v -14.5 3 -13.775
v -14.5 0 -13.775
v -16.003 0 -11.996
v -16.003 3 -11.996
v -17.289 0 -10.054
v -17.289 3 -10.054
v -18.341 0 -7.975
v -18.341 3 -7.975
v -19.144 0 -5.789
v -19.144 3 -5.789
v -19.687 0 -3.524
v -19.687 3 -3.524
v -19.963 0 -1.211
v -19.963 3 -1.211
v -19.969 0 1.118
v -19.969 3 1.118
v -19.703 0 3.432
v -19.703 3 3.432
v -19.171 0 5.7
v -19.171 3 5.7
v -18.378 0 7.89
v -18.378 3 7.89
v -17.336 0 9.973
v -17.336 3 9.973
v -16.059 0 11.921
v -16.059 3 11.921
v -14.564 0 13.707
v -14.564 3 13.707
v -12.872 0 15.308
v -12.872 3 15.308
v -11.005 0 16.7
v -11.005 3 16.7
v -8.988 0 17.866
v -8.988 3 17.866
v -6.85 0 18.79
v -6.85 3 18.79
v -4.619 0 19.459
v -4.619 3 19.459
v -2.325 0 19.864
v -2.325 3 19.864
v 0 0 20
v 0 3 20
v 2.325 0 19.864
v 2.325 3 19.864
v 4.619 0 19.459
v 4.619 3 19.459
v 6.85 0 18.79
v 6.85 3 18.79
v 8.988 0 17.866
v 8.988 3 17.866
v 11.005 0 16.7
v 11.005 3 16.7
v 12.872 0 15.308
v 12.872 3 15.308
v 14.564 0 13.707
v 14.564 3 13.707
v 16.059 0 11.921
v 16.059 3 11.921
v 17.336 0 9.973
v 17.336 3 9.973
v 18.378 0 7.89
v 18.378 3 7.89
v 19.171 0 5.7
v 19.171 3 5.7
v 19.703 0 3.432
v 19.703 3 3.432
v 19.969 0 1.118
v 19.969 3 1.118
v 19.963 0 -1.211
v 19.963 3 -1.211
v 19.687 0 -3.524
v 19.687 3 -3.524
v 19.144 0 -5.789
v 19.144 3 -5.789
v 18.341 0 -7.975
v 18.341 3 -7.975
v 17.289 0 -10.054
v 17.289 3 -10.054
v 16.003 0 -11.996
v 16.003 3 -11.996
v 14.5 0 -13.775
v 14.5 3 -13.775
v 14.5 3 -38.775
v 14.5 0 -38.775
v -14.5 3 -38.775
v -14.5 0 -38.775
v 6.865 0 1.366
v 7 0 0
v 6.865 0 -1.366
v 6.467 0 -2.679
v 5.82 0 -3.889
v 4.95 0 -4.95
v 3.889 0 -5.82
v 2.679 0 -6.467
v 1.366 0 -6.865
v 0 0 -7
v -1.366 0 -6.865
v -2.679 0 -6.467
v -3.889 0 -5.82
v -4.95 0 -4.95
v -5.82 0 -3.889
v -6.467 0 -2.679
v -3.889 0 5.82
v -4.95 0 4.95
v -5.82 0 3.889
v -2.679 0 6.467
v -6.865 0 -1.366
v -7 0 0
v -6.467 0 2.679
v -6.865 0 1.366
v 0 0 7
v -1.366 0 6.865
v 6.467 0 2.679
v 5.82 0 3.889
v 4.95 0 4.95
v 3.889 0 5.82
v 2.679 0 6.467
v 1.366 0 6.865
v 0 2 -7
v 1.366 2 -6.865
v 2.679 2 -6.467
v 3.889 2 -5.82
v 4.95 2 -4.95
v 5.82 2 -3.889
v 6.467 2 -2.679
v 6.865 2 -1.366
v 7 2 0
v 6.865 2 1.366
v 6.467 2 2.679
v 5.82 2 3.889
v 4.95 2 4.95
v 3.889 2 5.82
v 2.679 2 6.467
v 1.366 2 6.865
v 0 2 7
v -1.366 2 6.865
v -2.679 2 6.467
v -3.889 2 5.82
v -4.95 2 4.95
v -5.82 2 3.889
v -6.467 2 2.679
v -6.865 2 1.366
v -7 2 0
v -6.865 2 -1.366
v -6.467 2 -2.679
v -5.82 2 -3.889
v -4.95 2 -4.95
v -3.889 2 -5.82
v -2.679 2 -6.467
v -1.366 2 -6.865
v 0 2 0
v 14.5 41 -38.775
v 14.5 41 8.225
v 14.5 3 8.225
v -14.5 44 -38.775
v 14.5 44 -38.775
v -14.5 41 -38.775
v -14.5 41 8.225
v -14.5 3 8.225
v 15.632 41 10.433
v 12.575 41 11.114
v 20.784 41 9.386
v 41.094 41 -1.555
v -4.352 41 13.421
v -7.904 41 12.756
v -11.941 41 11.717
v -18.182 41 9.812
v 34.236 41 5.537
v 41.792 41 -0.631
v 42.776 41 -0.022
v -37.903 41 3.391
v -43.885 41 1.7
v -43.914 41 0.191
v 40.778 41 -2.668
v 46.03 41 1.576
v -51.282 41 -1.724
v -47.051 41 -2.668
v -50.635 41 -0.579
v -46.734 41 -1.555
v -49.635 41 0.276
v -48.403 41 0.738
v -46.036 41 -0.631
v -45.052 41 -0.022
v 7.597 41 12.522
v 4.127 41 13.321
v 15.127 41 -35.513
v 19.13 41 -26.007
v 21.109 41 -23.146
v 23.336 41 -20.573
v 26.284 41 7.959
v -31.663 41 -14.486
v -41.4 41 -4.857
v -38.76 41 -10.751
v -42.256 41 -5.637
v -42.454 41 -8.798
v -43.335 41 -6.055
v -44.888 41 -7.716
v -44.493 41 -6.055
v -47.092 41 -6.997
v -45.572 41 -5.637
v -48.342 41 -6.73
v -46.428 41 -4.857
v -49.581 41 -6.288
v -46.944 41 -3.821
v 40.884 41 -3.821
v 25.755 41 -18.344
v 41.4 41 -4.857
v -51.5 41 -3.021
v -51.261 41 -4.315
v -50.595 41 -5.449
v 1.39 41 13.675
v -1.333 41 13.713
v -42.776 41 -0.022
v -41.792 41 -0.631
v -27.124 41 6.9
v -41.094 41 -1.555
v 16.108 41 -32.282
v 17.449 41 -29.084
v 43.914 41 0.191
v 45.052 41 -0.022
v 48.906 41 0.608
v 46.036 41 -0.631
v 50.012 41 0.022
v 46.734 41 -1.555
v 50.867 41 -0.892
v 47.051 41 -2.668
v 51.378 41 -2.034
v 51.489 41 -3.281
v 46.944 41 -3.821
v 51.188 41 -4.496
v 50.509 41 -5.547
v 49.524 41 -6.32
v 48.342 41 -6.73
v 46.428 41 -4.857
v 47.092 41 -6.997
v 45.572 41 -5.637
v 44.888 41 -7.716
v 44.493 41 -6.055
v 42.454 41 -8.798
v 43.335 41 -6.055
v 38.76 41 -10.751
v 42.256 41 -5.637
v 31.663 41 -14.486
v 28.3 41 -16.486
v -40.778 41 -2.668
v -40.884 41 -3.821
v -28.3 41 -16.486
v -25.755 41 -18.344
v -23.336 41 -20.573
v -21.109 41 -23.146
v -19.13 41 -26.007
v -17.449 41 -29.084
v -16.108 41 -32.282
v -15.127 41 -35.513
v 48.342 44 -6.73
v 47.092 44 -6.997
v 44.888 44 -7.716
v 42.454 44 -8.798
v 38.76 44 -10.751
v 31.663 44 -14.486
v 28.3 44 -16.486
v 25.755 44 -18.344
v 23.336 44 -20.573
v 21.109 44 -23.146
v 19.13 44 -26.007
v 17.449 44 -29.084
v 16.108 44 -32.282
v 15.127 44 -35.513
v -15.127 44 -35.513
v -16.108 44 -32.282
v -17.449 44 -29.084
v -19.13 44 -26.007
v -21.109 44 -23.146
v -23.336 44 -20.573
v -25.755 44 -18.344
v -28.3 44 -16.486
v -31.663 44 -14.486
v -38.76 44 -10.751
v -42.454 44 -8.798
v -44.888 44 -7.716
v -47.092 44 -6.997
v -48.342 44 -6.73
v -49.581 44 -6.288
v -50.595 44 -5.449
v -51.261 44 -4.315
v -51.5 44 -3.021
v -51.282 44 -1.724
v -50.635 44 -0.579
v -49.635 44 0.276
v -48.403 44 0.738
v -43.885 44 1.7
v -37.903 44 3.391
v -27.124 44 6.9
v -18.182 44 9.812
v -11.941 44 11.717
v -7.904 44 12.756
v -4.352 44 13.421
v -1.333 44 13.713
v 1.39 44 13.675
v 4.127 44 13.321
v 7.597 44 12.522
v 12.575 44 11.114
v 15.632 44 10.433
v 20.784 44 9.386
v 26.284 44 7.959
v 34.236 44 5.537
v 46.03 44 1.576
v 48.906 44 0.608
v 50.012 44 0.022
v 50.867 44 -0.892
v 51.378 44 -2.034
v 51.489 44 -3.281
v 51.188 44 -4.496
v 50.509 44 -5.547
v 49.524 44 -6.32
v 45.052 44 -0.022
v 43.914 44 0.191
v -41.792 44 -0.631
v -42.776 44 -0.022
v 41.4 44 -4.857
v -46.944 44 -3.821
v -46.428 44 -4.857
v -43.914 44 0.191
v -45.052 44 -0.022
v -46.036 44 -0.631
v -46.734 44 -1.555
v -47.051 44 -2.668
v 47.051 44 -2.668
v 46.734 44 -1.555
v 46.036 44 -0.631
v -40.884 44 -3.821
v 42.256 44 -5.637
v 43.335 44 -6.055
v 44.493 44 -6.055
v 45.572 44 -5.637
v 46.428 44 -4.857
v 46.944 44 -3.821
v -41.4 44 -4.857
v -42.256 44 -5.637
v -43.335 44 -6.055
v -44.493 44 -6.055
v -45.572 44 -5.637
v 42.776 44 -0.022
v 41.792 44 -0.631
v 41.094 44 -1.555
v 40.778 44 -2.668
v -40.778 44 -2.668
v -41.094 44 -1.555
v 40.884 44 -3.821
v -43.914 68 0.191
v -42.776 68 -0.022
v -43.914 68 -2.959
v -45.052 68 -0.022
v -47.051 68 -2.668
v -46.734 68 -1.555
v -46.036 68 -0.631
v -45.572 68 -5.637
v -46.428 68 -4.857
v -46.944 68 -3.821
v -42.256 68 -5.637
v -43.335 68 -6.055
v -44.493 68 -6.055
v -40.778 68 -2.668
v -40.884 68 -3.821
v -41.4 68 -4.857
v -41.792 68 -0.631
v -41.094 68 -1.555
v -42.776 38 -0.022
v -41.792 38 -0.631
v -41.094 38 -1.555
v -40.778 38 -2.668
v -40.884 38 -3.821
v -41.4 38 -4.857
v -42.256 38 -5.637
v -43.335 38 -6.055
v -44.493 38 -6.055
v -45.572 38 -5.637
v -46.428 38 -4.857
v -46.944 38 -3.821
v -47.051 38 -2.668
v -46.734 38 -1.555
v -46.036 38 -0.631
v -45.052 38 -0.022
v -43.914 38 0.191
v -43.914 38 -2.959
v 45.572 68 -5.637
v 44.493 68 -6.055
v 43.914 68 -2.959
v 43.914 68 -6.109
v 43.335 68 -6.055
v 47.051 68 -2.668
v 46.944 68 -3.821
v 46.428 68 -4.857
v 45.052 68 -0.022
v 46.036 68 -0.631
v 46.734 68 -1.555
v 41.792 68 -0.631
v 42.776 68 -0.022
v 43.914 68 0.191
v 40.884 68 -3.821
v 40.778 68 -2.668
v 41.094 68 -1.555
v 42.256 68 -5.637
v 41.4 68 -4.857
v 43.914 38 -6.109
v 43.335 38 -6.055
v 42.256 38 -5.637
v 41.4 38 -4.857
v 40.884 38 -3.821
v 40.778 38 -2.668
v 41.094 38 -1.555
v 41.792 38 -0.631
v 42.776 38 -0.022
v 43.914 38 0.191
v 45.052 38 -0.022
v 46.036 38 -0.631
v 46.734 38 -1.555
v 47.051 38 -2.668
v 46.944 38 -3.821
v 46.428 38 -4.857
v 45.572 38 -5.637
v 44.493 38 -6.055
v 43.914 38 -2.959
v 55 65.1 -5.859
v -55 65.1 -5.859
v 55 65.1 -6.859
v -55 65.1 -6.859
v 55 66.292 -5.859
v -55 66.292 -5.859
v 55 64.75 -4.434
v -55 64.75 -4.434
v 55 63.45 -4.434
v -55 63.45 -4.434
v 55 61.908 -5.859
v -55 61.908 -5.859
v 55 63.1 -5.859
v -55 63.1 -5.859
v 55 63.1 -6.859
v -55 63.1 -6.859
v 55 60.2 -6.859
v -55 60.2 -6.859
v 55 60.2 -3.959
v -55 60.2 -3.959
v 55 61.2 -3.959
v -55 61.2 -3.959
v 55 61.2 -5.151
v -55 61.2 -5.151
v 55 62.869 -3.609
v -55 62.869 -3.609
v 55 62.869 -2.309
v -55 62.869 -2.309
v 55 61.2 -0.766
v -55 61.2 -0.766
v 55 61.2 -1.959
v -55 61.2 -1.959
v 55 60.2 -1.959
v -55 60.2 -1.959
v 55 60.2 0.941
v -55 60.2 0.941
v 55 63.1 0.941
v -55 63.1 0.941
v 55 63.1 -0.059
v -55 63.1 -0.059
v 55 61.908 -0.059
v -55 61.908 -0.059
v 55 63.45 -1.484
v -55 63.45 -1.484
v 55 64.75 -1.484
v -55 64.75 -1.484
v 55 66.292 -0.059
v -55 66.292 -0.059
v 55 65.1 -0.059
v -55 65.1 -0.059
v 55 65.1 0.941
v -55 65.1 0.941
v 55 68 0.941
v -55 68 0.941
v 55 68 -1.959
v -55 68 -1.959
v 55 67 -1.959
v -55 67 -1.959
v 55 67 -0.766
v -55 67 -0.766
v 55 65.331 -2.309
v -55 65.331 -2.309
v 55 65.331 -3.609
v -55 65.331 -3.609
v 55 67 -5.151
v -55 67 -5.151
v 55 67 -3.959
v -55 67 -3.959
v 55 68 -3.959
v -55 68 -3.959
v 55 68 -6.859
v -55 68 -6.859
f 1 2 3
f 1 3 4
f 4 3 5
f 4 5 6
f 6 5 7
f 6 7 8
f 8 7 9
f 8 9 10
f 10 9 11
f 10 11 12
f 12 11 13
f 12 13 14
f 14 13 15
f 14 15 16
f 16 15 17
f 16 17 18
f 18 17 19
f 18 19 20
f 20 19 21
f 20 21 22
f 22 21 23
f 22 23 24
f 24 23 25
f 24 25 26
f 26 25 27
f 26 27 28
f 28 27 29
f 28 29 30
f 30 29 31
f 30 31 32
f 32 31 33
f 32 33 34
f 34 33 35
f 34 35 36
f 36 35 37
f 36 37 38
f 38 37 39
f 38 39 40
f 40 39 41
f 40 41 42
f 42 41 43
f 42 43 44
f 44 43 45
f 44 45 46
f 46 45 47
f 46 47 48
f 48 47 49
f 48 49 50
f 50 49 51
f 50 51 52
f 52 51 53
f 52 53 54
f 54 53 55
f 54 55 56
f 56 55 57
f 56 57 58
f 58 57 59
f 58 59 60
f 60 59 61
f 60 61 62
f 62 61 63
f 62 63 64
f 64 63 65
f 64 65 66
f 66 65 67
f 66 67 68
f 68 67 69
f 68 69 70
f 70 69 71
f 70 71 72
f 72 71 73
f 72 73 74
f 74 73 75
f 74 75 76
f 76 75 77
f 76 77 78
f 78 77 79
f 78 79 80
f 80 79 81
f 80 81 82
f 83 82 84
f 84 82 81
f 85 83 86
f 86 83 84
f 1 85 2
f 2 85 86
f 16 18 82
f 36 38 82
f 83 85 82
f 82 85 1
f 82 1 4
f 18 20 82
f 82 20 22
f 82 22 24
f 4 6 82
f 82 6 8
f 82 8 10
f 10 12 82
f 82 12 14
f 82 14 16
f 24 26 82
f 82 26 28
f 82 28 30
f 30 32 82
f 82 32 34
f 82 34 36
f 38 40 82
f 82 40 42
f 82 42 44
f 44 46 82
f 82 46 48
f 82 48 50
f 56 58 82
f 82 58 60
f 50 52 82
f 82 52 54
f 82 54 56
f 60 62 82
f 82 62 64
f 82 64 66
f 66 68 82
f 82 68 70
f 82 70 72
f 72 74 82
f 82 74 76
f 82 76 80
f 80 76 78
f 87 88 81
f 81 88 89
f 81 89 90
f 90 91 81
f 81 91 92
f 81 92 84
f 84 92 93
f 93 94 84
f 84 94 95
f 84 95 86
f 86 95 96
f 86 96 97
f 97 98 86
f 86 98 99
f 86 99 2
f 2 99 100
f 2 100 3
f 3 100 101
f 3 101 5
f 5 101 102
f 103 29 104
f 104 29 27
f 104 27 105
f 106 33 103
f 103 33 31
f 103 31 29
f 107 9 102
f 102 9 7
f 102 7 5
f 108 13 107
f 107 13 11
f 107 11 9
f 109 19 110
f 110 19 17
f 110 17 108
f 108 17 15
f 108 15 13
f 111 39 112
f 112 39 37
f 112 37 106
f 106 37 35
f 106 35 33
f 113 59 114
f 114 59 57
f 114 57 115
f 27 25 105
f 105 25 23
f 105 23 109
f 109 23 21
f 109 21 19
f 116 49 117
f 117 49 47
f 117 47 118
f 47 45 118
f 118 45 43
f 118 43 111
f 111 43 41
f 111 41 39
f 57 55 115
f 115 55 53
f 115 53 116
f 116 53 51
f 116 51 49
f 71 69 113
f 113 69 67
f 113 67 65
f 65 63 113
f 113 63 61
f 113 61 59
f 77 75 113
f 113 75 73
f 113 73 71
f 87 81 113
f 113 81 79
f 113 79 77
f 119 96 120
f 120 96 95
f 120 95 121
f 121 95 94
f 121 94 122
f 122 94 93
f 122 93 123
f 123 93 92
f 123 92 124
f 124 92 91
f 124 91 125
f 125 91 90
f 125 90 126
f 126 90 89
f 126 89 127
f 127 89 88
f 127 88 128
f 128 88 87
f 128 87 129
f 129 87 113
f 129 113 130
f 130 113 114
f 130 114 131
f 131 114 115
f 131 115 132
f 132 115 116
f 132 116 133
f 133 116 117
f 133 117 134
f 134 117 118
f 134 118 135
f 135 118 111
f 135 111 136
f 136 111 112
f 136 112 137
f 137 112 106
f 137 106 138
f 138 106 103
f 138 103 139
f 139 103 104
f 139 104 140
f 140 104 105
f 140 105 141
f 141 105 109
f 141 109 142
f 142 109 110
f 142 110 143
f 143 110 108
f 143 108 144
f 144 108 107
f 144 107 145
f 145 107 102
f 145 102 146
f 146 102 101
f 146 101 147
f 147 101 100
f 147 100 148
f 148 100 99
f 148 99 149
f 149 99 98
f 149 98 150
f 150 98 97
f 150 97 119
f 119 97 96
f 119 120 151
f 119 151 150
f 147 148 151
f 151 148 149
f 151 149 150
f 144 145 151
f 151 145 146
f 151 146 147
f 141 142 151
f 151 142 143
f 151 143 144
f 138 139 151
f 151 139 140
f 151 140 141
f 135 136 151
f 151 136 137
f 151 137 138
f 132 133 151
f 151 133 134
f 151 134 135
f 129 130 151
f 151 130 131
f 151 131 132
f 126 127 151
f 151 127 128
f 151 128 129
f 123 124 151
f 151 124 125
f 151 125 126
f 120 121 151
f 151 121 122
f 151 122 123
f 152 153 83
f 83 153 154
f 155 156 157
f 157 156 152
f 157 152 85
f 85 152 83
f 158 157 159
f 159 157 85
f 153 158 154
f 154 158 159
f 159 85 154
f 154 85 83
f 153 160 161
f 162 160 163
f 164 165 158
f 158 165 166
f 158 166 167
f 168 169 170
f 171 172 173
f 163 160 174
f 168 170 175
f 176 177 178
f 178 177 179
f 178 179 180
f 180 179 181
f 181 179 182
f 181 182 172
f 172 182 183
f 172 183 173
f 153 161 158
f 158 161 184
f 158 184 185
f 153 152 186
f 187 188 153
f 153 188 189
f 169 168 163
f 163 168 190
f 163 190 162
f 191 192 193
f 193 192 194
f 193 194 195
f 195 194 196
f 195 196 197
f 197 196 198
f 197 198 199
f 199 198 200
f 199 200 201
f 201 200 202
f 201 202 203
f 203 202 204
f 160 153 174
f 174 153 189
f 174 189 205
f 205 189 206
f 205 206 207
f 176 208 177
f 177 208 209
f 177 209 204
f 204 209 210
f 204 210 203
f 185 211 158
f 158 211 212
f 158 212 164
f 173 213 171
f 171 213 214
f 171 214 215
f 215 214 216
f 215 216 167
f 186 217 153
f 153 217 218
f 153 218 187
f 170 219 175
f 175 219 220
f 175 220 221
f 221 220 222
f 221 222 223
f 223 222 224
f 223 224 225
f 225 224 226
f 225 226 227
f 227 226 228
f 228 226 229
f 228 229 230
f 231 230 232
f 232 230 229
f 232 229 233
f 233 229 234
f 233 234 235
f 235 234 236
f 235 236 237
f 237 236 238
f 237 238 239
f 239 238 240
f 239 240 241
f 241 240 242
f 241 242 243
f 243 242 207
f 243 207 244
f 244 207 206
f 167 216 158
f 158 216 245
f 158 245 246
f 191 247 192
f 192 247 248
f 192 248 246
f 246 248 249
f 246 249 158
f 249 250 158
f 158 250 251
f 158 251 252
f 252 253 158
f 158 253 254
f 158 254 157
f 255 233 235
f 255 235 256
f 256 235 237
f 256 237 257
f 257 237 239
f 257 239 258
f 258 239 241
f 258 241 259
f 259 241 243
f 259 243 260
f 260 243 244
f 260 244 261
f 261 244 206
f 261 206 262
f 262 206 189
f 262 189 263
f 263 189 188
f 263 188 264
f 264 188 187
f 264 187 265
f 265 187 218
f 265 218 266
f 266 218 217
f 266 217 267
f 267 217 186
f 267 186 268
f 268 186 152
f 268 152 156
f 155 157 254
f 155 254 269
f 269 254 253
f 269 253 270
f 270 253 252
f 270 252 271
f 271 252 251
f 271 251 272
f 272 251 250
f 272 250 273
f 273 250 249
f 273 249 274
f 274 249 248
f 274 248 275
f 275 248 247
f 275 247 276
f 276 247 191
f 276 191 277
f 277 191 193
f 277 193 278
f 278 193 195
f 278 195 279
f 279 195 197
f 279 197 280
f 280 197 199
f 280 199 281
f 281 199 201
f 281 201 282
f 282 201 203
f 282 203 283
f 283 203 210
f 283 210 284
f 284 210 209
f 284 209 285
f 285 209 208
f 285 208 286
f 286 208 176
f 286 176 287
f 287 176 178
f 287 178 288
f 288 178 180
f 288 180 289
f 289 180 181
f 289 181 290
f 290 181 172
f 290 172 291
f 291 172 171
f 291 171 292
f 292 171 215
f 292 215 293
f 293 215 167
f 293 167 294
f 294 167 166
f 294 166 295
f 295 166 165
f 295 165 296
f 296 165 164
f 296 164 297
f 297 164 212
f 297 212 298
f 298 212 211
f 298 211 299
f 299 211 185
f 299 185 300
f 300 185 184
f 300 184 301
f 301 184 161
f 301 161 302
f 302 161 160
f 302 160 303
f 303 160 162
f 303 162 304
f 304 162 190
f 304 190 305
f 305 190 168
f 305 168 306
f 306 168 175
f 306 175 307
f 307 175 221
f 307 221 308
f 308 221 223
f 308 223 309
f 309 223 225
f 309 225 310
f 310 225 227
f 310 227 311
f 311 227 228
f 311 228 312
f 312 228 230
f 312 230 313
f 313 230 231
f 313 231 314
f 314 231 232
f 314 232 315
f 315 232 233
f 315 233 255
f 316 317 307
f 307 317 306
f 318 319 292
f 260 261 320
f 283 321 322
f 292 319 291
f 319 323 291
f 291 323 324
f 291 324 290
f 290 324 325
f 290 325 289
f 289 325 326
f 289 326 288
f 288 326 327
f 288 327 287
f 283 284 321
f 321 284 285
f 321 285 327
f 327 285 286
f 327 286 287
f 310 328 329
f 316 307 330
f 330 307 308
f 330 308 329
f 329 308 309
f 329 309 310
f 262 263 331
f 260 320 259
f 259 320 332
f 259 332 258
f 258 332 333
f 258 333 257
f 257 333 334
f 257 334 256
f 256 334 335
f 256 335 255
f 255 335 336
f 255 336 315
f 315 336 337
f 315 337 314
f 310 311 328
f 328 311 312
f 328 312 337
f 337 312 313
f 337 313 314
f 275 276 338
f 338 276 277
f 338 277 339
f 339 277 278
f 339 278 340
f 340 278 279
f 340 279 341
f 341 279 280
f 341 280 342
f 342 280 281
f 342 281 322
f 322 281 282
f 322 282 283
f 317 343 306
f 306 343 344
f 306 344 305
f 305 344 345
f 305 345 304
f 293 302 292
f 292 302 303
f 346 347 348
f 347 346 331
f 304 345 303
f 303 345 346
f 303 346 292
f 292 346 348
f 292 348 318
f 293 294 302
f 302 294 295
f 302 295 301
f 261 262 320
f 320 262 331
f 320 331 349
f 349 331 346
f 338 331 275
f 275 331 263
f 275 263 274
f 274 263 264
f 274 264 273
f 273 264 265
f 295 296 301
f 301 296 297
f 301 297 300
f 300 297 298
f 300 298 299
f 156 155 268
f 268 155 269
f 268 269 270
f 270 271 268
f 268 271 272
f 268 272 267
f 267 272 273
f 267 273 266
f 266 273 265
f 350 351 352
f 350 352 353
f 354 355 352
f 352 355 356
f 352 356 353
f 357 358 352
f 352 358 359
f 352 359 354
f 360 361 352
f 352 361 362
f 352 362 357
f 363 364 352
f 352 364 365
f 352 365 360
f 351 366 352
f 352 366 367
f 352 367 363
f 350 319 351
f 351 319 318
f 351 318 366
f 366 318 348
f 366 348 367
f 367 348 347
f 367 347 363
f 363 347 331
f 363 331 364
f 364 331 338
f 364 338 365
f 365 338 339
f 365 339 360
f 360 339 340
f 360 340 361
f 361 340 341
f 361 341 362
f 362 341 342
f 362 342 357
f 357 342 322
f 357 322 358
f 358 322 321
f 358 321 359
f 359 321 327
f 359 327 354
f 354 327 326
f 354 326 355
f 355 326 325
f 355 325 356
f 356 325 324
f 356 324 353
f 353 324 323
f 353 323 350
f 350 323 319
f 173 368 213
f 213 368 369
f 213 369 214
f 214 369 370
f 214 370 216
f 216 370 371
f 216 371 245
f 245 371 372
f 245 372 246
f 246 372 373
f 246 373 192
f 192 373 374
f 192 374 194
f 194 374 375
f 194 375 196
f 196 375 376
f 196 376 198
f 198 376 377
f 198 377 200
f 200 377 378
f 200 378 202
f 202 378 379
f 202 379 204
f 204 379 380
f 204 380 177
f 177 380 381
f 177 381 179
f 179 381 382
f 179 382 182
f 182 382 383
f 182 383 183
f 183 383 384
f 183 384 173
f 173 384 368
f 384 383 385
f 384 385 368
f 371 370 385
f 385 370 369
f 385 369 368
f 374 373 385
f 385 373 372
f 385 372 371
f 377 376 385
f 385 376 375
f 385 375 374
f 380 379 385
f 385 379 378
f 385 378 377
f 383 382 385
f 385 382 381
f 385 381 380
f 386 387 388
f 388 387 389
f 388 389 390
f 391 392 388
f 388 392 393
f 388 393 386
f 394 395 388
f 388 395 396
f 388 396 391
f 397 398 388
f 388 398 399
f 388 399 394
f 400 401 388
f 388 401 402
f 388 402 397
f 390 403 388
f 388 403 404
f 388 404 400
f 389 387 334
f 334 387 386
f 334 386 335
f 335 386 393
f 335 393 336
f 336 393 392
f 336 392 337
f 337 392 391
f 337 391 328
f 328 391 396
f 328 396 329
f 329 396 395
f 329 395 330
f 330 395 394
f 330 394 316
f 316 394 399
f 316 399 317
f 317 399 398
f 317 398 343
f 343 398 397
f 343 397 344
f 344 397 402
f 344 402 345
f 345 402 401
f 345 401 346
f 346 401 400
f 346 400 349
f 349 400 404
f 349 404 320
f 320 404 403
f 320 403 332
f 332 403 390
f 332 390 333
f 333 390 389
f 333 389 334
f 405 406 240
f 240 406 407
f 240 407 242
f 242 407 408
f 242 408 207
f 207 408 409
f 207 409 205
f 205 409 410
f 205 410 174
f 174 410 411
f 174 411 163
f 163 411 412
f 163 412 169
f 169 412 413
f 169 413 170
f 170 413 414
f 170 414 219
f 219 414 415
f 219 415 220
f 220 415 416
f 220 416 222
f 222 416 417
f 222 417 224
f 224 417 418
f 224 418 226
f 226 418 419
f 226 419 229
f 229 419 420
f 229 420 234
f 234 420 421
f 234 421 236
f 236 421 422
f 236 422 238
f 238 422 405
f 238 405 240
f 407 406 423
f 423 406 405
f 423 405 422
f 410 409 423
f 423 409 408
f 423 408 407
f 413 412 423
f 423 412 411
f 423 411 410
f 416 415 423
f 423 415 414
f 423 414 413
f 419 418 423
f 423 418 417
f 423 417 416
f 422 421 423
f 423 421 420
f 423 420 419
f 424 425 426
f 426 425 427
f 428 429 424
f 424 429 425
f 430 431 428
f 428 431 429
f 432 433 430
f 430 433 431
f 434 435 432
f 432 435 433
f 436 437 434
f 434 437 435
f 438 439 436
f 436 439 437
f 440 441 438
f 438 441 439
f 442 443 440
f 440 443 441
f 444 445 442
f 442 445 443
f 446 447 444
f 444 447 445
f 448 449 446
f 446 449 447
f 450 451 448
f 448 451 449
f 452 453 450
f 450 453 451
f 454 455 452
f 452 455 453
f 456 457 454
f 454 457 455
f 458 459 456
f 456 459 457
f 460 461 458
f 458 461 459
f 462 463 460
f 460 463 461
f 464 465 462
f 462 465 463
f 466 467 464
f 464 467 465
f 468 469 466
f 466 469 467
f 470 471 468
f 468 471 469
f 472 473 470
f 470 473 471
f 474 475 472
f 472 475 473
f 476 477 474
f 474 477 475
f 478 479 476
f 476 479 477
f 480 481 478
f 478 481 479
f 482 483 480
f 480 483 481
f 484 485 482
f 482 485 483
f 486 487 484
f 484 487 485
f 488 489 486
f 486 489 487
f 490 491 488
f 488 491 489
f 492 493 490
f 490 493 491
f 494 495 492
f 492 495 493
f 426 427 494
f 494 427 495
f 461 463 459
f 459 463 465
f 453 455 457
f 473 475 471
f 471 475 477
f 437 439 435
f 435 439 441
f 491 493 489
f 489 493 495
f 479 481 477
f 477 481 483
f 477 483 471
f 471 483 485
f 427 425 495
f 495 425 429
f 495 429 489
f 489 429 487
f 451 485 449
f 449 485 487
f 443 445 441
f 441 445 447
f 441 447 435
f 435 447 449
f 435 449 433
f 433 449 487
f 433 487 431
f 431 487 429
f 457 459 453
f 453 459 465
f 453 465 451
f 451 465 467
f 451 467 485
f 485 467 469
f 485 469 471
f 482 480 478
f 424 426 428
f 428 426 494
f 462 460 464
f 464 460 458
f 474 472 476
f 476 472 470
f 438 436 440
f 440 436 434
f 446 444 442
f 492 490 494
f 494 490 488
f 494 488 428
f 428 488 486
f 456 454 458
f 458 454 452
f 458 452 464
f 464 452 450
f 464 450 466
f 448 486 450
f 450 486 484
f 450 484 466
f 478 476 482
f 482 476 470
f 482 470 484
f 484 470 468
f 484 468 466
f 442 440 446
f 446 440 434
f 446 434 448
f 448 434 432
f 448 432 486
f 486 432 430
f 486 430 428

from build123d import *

# Parameters (mm, degrees)
BOSS_EXTRUDE1_DEPTH      = 3
SKETCH2_W                = 29
SKETCH2_H                = 47
BOSS_EXTRUDE2_DEPTH      = 38
SKETCH3_W                = 29
SKETCH3_H                = 47
BOSS_EXTRUDE3_DEPTH      = 3
SKETCH4_R                = 7
CUT_EXTRUDE2_DEPTH       = 2
BOSS_EXTRUDE4_DEPTH      = 24
BOSS_EXTRUDE4_DEPTH_BACK = 6
SKETCH5_R                = 3.15
BOSS_EXTRUDE5_DEPTH      = 55
BOSS_EXTRUDE5_DEPTH_BACK = 55


with BuildPart() as part:
    # Sketch1 → Boss-Extrude1 (new body)
    with BuildSketch(Plane(origin=(0, 0, 0), x_dir=(1, 0, 0), z_dir=(0, 1, 0))):
        with BuildLine():
            Line((-14.5, 38.774977314), (14.5, 38.774977314))
            Line((14.5, 38.774977314), (14.5, 13.774977314))
            ThreePointArc((14.5, 13.774977314), (0, -20), (-14.5, 13.774977314))
            Line((-14.5, 13.774977314), (-14.5, 38.774977314))
        make_face()
    extrude(amount=BOSS_EXTRUDE1_DEPTH)

    # Sketch4 → Cut-Extrude2 (cut)
    with BuildSketch(Plane.XZ):
        with Locations(Location((0, 0, 0), (0, 0, 270))):
            Circle(SKETCH4_R)
    extrude(amount=-CUT_EXTRUDE2_DEPTH, mode=Mode.SUBTRACT)


with BuildPart() as body_2:
    # Sketch2 → Boss-Extrude2 (new body)
    with BuildSketch(Plane(origin=(0, 3, 0), x_dir=(1, 0, 0), z_dir=(0, 1, 0))):
        with Locations((0, 15.274977314)):
            Rectangle(SKETCH2_W, SKETCH2_H)
    extrude(amount=BOSS_EXTRUDE2_DEPTH)

    # Sketch3 → Boss-Extrude3 (add)
    with BuildSketch(Plane(origin=(0, 41, 0), x_dir=(1, 0, 0), z_dir=(0, 1, 0))):
        with BuildLine():
            add(Edge.make_bspline(
                [(-48.403293038, -0.738448708), (-46.722077864, -1.052422756), (-39.364385354, -2.560583108), (-22.668282111, -8.654314983), (1.61249857, -15.747307167), (10.728352261, -11.256041418), (15.631641737, -10.432634197)],
                knots=[0.248885178, 0.248885178, 0.248885178, 0.248885178, 0.339972432, 0.6300827, 0.771871401, 0.935575436, 0.935575436, 0.935575436, 0.935575436], degree=3))
            add(Edge.make_bspline(
                [(15.631641737, -10.432634197), (24.752270132, -8.901011128), (37.108839409, -4.596412261), (47.624465638, -1.035325657), (48.905767222, -0.608487049)],
                knots=[0.030067832, 0.030067832, 0.030067832, 0.030067832, 0.543781053, 0.617485769, 0.617485769, 0.617485769, 0.617485769], degree=3))
            ThreePointArc((48.905767222, -0.608487049), (51.488843103, 3.280831008), (48.341687977, 6.729670026))
            add(Edge.make_bspline(
                [(14.5, 38.774977314), (15.567965131, 30.93381812), (22.220147325, 18.615244813), (37.203490403, 11.889028242), (44.639099785, 7.358117597), (48.341687977, 6.729670026)],
                knots=[0, 0, 0, 0, 0.490598959, 0.765051405, 1, 1, 1, 1], degree=3))
            Line((14.5, 38.774977314), (14.5, -8.225022686))
            Line((14.5, -8.225022686), (-14.5, -8.225022686))
            Line((-14.5, -8.225022686), (-14.5, 38.774977314))
            add(Edge.make_bspline(
                [(-14.5, 38.774977314), (-15.567965131, 30.93381812), (-22.220147325, 18.615244813), (-37.203490403, 11.889028242), (-44.639099785, 7.358117597), (-48.341687977, 6.729670026)],
                knots=[0, 0, 0, 0, 0.490598959, 0.765051405, 1, 1, 1, 1], degree=3))
            ThreePointArc((-48.341687977, 6.729670026), (-51.499870954, 3.02140865), (-48.403293038, -0.738448708))
        make_face()
        with Locations((0, 15.274977314)):
            Rectangle(SKETCH3_W, SKETCH3_H)
    extrude(amount=BOSS_EXTRUDE3_DEPTH)

    # Sketch5 → Boss-Extrude4 (add, two sides: drawn at the far end of the back side and taken through both)
    with BuildSketch(Plane(origin=(0, 44, 0), x_dir=(1, 0, 0), z_dir=(0, 1, 0)).offset(-BOSS_EXTRUDE4_DEPTH_BACK)):
        with Locations(Location((-43.914062889, 2.958832761, 0), (0, 0, 270))):
            Circle(SKETCH5_R)
        with Locations(Location((43.914062889, 2.958832761, 0), (0, 0, 270))):
            Circle(SKETCH5_R)
    extrude(amount=BOSS_EXTRUDE4_DEPTH + BOSS_EXTRUDE4_DEPTH_BACK)


with BuildPart() as body_3:
    # Sketch6 → Boss-Extrude5 (new, two sides: drawn at the far end of the back side and taken through both)
    with BuildSketch(Plane(origin=(0, 0, 0), x_dir=(0, 0, -1), z_dir=(1, 0, 0)).offset(-BOSS_EXTRUDE5_DEPTH_BACK)):
        Polygon((3.958832761, 61.2), (3.958832761, 60.2), (6.858832761, 60.2), (6.858832761, 63.1), (5.858832761, 63.1), (5.858832761, 61.907657541), (4.43363813, 63.45), (4.43363813, 64.75), (5.858832761, 66.292342459), (5.858832761, 65.1), (6.858832761, 65.1), (6.858832761, 68), (6.108832761, 68), (3.958832761, 68), (3.958832761, 67), (5.151175221, 67), (3.608832761, 65.330880423), (2.308832761, 65.330880423), (0.766490302, 67), (1.958832761, 67), (1.958832761, 68), (-0.191167239, 68), (-0.941167239, 68), (-0.941167239, 65.1), (0.058832761, 65.1), (0.058832761, 66.292342459), (1.484027393, 64.75), (1.484027393, 63.45), (0.058832761, 61.907657541), (0.058832761, 63.1), (-0.941167239, 63.1), (-0.941167239, 60.2), (1.958832761, 60.2), (1.958832761, 61.2), (0.766490302, 61.2), (2.308832761, 62.869119577), (3.608832761, 62.869119577), (5.151175221, 61.2), align=None)
    extrude(amount=BOSS_EXTRUDE5_DEPTH + BOSS_EXTRUDE5_DEPTH_BACK)


solid = Compound([part.part, body_2.part, body_3.part])
